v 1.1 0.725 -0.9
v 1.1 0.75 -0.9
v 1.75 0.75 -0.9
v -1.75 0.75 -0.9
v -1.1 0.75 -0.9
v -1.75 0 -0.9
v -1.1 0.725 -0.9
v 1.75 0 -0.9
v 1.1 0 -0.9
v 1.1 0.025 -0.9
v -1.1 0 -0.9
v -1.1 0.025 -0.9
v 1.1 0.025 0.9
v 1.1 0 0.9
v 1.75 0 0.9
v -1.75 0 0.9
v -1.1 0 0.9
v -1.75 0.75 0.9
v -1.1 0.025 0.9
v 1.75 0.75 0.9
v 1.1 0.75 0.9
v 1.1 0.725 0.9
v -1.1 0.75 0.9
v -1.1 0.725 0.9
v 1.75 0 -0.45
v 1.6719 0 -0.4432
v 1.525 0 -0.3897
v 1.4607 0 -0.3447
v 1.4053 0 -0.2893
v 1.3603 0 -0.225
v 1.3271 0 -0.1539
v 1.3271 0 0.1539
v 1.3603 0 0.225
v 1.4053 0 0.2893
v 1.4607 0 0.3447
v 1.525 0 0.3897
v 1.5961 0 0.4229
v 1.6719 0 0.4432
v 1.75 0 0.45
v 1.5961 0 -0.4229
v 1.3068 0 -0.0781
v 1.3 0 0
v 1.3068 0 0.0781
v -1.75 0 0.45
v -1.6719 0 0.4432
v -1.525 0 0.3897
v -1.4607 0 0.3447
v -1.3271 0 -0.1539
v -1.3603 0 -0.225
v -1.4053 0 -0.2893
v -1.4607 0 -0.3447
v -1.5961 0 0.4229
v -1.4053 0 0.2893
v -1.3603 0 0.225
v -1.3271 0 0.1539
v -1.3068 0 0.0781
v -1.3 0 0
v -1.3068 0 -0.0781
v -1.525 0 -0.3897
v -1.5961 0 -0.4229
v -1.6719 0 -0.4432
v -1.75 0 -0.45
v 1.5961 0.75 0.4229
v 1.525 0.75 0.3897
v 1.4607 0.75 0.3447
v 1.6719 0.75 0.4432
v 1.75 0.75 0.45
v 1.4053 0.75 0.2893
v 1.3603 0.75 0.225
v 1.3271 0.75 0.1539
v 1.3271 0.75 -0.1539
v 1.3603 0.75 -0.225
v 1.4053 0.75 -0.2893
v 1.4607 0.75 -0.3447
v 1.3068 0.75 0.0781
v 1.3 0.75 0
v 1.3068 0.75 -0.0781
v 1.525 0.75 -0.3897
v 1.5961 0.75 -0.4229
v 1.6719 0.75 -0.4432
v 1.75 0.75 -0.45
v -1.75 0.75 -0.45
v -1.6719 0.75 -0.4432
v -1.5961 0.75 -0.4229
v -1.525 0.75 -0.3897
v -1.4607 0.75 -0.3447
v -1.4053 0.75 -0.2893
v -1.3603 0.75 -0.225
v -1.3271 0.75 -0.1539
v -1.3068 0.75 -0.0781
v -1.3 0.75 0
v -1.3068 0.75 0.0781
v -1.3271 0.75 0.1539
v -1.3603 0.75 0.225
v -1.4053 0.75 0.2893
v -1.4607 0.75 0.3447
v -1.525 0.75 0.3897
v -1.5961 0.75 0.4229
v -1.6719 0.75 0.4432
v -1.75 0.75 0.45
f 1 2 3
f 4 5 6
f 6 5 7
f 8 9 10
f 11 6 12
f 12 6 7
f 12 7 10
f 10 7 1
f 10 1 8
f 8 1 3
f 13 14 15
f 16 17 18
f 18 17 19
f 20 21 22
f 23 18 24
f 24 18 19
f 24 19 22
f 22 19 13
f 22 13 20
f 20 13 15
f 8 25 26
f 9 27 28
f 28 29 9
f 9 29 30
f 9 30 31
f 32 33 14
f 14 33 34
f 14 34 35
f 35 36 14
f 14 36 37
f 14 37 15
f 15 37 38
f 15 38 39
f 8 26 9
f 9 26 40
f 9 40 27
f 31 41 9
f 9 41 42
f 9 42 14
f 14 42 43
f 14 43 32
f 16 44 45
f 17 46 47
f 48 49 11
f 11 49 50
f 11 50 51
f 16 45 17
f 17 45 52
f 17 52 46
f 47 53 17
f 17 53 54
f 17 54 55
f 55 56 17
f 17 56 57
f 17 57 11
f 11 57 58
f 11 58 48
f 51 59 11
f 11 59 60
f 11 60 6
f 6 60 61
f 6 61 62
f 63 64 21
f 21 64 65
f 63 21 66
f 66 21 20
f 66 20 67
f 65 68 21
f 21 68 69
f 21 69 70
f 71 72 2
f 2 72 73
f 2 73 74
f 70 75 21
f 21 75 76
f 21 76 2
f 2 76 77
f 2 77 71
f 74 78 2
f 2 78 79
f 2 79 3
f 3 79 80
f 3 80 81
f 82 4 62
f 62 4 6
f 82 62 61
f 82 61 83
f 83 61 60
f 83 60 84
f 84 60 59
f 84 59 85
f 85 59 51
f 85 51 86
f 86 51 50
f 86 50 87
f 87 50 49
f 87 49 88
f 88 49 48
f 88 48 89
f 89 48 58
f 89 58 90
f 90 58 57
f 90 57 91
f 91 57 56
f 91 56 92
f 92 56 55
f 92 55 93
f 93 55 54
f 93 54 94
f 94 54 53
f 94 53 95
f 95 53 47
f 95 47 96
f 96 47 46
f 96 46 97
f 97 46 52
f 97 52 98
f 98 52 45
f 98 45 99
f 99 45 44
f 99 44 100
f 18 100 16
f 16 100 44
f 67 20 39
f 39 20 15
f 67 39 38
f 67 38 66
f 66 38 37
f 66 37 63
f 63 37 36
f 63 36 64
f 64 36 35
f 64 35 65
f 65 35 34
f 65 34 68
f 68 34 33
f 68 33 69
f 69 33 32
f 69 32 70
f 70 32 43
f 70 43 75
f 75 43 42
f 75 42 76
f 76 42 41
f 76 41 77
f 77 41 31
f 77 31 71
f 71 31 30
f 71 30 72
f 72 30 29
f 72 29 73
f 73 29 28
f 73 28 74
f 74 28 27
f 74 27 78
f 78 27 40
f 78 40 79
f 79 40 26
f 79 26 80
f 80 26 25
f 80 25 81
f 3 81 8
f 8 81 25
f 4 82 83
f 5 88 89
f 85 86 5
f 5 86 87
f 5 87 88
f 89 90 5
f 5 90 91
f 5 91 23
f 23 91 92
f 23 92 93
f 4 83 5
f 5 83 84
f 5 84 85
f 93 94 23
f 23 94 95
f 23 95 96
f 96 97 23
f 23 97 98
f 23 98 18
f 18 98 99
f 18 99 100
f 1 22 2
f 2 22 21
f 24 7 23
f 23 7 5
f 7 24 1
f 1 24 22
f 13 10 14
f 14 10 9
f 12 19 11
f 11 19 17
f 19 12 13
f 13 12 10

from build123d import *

# Parameters (mm, degrees)
BOSS_EXTRUDE1_DEPTH = 0.75
SKETCH2_W           = 2.2
SKETCH2_H           = 1.8
CUT_EXTRUDE1_DEPTH  = 0.025


with BuildPart() as part:
    # Sketch1 → Boss-Extrude1 (new body)
    with BuildSketch(Plane(origin=(0, 0, 0), x_dir=(1, 0, 0), z_dir=(0, 1, 0))):
        with BuildLine():
            Line((1.75, 0.45), (1.75, 0.9))
            Line((1.75, 0.9), (-1.75, 0.9))
            Line((-1.75, 0.9), (-1.75, 0.45))
            ThreePointArc((-1.75, 0.45), (-1.3, 0), (-1.75, -0.45))
            Line((-1.75, -0.45), (-1.75, -0.9))
            Line((-1.75, -0.9), (1.75, -0.9))
            Line((1.75, -0.9), (1.75, -0.45))
            ThreePointArc((1.75, -0.45), (1.3, 0), (1.75, 0.45))
        make_face()
    extrude(amount=BOSS_EXTRUDE1_DEPTH)

    # Sketch2 → Cut-Extrude1 (cut)
    with BuildSketch(Plane(origin=(0, 0.75, 0), x_dir=(1, 0, 0), z_dir=(0, 1, 0))):
        Rectangle(SKETCH2_W, SKETCH2_H)
    cut_extrude1 = extrude(amount=-CUT_EXTRUDE1_DEPTH, mode=Mode.SUBTRACT)

    # Mirror1: Cut-Extrude1 across plane
    add(cut_extrude1.mirror(Plane.ZX.offset(0.375)), mode=Mode.SUBTRACT)


solid = part.part
